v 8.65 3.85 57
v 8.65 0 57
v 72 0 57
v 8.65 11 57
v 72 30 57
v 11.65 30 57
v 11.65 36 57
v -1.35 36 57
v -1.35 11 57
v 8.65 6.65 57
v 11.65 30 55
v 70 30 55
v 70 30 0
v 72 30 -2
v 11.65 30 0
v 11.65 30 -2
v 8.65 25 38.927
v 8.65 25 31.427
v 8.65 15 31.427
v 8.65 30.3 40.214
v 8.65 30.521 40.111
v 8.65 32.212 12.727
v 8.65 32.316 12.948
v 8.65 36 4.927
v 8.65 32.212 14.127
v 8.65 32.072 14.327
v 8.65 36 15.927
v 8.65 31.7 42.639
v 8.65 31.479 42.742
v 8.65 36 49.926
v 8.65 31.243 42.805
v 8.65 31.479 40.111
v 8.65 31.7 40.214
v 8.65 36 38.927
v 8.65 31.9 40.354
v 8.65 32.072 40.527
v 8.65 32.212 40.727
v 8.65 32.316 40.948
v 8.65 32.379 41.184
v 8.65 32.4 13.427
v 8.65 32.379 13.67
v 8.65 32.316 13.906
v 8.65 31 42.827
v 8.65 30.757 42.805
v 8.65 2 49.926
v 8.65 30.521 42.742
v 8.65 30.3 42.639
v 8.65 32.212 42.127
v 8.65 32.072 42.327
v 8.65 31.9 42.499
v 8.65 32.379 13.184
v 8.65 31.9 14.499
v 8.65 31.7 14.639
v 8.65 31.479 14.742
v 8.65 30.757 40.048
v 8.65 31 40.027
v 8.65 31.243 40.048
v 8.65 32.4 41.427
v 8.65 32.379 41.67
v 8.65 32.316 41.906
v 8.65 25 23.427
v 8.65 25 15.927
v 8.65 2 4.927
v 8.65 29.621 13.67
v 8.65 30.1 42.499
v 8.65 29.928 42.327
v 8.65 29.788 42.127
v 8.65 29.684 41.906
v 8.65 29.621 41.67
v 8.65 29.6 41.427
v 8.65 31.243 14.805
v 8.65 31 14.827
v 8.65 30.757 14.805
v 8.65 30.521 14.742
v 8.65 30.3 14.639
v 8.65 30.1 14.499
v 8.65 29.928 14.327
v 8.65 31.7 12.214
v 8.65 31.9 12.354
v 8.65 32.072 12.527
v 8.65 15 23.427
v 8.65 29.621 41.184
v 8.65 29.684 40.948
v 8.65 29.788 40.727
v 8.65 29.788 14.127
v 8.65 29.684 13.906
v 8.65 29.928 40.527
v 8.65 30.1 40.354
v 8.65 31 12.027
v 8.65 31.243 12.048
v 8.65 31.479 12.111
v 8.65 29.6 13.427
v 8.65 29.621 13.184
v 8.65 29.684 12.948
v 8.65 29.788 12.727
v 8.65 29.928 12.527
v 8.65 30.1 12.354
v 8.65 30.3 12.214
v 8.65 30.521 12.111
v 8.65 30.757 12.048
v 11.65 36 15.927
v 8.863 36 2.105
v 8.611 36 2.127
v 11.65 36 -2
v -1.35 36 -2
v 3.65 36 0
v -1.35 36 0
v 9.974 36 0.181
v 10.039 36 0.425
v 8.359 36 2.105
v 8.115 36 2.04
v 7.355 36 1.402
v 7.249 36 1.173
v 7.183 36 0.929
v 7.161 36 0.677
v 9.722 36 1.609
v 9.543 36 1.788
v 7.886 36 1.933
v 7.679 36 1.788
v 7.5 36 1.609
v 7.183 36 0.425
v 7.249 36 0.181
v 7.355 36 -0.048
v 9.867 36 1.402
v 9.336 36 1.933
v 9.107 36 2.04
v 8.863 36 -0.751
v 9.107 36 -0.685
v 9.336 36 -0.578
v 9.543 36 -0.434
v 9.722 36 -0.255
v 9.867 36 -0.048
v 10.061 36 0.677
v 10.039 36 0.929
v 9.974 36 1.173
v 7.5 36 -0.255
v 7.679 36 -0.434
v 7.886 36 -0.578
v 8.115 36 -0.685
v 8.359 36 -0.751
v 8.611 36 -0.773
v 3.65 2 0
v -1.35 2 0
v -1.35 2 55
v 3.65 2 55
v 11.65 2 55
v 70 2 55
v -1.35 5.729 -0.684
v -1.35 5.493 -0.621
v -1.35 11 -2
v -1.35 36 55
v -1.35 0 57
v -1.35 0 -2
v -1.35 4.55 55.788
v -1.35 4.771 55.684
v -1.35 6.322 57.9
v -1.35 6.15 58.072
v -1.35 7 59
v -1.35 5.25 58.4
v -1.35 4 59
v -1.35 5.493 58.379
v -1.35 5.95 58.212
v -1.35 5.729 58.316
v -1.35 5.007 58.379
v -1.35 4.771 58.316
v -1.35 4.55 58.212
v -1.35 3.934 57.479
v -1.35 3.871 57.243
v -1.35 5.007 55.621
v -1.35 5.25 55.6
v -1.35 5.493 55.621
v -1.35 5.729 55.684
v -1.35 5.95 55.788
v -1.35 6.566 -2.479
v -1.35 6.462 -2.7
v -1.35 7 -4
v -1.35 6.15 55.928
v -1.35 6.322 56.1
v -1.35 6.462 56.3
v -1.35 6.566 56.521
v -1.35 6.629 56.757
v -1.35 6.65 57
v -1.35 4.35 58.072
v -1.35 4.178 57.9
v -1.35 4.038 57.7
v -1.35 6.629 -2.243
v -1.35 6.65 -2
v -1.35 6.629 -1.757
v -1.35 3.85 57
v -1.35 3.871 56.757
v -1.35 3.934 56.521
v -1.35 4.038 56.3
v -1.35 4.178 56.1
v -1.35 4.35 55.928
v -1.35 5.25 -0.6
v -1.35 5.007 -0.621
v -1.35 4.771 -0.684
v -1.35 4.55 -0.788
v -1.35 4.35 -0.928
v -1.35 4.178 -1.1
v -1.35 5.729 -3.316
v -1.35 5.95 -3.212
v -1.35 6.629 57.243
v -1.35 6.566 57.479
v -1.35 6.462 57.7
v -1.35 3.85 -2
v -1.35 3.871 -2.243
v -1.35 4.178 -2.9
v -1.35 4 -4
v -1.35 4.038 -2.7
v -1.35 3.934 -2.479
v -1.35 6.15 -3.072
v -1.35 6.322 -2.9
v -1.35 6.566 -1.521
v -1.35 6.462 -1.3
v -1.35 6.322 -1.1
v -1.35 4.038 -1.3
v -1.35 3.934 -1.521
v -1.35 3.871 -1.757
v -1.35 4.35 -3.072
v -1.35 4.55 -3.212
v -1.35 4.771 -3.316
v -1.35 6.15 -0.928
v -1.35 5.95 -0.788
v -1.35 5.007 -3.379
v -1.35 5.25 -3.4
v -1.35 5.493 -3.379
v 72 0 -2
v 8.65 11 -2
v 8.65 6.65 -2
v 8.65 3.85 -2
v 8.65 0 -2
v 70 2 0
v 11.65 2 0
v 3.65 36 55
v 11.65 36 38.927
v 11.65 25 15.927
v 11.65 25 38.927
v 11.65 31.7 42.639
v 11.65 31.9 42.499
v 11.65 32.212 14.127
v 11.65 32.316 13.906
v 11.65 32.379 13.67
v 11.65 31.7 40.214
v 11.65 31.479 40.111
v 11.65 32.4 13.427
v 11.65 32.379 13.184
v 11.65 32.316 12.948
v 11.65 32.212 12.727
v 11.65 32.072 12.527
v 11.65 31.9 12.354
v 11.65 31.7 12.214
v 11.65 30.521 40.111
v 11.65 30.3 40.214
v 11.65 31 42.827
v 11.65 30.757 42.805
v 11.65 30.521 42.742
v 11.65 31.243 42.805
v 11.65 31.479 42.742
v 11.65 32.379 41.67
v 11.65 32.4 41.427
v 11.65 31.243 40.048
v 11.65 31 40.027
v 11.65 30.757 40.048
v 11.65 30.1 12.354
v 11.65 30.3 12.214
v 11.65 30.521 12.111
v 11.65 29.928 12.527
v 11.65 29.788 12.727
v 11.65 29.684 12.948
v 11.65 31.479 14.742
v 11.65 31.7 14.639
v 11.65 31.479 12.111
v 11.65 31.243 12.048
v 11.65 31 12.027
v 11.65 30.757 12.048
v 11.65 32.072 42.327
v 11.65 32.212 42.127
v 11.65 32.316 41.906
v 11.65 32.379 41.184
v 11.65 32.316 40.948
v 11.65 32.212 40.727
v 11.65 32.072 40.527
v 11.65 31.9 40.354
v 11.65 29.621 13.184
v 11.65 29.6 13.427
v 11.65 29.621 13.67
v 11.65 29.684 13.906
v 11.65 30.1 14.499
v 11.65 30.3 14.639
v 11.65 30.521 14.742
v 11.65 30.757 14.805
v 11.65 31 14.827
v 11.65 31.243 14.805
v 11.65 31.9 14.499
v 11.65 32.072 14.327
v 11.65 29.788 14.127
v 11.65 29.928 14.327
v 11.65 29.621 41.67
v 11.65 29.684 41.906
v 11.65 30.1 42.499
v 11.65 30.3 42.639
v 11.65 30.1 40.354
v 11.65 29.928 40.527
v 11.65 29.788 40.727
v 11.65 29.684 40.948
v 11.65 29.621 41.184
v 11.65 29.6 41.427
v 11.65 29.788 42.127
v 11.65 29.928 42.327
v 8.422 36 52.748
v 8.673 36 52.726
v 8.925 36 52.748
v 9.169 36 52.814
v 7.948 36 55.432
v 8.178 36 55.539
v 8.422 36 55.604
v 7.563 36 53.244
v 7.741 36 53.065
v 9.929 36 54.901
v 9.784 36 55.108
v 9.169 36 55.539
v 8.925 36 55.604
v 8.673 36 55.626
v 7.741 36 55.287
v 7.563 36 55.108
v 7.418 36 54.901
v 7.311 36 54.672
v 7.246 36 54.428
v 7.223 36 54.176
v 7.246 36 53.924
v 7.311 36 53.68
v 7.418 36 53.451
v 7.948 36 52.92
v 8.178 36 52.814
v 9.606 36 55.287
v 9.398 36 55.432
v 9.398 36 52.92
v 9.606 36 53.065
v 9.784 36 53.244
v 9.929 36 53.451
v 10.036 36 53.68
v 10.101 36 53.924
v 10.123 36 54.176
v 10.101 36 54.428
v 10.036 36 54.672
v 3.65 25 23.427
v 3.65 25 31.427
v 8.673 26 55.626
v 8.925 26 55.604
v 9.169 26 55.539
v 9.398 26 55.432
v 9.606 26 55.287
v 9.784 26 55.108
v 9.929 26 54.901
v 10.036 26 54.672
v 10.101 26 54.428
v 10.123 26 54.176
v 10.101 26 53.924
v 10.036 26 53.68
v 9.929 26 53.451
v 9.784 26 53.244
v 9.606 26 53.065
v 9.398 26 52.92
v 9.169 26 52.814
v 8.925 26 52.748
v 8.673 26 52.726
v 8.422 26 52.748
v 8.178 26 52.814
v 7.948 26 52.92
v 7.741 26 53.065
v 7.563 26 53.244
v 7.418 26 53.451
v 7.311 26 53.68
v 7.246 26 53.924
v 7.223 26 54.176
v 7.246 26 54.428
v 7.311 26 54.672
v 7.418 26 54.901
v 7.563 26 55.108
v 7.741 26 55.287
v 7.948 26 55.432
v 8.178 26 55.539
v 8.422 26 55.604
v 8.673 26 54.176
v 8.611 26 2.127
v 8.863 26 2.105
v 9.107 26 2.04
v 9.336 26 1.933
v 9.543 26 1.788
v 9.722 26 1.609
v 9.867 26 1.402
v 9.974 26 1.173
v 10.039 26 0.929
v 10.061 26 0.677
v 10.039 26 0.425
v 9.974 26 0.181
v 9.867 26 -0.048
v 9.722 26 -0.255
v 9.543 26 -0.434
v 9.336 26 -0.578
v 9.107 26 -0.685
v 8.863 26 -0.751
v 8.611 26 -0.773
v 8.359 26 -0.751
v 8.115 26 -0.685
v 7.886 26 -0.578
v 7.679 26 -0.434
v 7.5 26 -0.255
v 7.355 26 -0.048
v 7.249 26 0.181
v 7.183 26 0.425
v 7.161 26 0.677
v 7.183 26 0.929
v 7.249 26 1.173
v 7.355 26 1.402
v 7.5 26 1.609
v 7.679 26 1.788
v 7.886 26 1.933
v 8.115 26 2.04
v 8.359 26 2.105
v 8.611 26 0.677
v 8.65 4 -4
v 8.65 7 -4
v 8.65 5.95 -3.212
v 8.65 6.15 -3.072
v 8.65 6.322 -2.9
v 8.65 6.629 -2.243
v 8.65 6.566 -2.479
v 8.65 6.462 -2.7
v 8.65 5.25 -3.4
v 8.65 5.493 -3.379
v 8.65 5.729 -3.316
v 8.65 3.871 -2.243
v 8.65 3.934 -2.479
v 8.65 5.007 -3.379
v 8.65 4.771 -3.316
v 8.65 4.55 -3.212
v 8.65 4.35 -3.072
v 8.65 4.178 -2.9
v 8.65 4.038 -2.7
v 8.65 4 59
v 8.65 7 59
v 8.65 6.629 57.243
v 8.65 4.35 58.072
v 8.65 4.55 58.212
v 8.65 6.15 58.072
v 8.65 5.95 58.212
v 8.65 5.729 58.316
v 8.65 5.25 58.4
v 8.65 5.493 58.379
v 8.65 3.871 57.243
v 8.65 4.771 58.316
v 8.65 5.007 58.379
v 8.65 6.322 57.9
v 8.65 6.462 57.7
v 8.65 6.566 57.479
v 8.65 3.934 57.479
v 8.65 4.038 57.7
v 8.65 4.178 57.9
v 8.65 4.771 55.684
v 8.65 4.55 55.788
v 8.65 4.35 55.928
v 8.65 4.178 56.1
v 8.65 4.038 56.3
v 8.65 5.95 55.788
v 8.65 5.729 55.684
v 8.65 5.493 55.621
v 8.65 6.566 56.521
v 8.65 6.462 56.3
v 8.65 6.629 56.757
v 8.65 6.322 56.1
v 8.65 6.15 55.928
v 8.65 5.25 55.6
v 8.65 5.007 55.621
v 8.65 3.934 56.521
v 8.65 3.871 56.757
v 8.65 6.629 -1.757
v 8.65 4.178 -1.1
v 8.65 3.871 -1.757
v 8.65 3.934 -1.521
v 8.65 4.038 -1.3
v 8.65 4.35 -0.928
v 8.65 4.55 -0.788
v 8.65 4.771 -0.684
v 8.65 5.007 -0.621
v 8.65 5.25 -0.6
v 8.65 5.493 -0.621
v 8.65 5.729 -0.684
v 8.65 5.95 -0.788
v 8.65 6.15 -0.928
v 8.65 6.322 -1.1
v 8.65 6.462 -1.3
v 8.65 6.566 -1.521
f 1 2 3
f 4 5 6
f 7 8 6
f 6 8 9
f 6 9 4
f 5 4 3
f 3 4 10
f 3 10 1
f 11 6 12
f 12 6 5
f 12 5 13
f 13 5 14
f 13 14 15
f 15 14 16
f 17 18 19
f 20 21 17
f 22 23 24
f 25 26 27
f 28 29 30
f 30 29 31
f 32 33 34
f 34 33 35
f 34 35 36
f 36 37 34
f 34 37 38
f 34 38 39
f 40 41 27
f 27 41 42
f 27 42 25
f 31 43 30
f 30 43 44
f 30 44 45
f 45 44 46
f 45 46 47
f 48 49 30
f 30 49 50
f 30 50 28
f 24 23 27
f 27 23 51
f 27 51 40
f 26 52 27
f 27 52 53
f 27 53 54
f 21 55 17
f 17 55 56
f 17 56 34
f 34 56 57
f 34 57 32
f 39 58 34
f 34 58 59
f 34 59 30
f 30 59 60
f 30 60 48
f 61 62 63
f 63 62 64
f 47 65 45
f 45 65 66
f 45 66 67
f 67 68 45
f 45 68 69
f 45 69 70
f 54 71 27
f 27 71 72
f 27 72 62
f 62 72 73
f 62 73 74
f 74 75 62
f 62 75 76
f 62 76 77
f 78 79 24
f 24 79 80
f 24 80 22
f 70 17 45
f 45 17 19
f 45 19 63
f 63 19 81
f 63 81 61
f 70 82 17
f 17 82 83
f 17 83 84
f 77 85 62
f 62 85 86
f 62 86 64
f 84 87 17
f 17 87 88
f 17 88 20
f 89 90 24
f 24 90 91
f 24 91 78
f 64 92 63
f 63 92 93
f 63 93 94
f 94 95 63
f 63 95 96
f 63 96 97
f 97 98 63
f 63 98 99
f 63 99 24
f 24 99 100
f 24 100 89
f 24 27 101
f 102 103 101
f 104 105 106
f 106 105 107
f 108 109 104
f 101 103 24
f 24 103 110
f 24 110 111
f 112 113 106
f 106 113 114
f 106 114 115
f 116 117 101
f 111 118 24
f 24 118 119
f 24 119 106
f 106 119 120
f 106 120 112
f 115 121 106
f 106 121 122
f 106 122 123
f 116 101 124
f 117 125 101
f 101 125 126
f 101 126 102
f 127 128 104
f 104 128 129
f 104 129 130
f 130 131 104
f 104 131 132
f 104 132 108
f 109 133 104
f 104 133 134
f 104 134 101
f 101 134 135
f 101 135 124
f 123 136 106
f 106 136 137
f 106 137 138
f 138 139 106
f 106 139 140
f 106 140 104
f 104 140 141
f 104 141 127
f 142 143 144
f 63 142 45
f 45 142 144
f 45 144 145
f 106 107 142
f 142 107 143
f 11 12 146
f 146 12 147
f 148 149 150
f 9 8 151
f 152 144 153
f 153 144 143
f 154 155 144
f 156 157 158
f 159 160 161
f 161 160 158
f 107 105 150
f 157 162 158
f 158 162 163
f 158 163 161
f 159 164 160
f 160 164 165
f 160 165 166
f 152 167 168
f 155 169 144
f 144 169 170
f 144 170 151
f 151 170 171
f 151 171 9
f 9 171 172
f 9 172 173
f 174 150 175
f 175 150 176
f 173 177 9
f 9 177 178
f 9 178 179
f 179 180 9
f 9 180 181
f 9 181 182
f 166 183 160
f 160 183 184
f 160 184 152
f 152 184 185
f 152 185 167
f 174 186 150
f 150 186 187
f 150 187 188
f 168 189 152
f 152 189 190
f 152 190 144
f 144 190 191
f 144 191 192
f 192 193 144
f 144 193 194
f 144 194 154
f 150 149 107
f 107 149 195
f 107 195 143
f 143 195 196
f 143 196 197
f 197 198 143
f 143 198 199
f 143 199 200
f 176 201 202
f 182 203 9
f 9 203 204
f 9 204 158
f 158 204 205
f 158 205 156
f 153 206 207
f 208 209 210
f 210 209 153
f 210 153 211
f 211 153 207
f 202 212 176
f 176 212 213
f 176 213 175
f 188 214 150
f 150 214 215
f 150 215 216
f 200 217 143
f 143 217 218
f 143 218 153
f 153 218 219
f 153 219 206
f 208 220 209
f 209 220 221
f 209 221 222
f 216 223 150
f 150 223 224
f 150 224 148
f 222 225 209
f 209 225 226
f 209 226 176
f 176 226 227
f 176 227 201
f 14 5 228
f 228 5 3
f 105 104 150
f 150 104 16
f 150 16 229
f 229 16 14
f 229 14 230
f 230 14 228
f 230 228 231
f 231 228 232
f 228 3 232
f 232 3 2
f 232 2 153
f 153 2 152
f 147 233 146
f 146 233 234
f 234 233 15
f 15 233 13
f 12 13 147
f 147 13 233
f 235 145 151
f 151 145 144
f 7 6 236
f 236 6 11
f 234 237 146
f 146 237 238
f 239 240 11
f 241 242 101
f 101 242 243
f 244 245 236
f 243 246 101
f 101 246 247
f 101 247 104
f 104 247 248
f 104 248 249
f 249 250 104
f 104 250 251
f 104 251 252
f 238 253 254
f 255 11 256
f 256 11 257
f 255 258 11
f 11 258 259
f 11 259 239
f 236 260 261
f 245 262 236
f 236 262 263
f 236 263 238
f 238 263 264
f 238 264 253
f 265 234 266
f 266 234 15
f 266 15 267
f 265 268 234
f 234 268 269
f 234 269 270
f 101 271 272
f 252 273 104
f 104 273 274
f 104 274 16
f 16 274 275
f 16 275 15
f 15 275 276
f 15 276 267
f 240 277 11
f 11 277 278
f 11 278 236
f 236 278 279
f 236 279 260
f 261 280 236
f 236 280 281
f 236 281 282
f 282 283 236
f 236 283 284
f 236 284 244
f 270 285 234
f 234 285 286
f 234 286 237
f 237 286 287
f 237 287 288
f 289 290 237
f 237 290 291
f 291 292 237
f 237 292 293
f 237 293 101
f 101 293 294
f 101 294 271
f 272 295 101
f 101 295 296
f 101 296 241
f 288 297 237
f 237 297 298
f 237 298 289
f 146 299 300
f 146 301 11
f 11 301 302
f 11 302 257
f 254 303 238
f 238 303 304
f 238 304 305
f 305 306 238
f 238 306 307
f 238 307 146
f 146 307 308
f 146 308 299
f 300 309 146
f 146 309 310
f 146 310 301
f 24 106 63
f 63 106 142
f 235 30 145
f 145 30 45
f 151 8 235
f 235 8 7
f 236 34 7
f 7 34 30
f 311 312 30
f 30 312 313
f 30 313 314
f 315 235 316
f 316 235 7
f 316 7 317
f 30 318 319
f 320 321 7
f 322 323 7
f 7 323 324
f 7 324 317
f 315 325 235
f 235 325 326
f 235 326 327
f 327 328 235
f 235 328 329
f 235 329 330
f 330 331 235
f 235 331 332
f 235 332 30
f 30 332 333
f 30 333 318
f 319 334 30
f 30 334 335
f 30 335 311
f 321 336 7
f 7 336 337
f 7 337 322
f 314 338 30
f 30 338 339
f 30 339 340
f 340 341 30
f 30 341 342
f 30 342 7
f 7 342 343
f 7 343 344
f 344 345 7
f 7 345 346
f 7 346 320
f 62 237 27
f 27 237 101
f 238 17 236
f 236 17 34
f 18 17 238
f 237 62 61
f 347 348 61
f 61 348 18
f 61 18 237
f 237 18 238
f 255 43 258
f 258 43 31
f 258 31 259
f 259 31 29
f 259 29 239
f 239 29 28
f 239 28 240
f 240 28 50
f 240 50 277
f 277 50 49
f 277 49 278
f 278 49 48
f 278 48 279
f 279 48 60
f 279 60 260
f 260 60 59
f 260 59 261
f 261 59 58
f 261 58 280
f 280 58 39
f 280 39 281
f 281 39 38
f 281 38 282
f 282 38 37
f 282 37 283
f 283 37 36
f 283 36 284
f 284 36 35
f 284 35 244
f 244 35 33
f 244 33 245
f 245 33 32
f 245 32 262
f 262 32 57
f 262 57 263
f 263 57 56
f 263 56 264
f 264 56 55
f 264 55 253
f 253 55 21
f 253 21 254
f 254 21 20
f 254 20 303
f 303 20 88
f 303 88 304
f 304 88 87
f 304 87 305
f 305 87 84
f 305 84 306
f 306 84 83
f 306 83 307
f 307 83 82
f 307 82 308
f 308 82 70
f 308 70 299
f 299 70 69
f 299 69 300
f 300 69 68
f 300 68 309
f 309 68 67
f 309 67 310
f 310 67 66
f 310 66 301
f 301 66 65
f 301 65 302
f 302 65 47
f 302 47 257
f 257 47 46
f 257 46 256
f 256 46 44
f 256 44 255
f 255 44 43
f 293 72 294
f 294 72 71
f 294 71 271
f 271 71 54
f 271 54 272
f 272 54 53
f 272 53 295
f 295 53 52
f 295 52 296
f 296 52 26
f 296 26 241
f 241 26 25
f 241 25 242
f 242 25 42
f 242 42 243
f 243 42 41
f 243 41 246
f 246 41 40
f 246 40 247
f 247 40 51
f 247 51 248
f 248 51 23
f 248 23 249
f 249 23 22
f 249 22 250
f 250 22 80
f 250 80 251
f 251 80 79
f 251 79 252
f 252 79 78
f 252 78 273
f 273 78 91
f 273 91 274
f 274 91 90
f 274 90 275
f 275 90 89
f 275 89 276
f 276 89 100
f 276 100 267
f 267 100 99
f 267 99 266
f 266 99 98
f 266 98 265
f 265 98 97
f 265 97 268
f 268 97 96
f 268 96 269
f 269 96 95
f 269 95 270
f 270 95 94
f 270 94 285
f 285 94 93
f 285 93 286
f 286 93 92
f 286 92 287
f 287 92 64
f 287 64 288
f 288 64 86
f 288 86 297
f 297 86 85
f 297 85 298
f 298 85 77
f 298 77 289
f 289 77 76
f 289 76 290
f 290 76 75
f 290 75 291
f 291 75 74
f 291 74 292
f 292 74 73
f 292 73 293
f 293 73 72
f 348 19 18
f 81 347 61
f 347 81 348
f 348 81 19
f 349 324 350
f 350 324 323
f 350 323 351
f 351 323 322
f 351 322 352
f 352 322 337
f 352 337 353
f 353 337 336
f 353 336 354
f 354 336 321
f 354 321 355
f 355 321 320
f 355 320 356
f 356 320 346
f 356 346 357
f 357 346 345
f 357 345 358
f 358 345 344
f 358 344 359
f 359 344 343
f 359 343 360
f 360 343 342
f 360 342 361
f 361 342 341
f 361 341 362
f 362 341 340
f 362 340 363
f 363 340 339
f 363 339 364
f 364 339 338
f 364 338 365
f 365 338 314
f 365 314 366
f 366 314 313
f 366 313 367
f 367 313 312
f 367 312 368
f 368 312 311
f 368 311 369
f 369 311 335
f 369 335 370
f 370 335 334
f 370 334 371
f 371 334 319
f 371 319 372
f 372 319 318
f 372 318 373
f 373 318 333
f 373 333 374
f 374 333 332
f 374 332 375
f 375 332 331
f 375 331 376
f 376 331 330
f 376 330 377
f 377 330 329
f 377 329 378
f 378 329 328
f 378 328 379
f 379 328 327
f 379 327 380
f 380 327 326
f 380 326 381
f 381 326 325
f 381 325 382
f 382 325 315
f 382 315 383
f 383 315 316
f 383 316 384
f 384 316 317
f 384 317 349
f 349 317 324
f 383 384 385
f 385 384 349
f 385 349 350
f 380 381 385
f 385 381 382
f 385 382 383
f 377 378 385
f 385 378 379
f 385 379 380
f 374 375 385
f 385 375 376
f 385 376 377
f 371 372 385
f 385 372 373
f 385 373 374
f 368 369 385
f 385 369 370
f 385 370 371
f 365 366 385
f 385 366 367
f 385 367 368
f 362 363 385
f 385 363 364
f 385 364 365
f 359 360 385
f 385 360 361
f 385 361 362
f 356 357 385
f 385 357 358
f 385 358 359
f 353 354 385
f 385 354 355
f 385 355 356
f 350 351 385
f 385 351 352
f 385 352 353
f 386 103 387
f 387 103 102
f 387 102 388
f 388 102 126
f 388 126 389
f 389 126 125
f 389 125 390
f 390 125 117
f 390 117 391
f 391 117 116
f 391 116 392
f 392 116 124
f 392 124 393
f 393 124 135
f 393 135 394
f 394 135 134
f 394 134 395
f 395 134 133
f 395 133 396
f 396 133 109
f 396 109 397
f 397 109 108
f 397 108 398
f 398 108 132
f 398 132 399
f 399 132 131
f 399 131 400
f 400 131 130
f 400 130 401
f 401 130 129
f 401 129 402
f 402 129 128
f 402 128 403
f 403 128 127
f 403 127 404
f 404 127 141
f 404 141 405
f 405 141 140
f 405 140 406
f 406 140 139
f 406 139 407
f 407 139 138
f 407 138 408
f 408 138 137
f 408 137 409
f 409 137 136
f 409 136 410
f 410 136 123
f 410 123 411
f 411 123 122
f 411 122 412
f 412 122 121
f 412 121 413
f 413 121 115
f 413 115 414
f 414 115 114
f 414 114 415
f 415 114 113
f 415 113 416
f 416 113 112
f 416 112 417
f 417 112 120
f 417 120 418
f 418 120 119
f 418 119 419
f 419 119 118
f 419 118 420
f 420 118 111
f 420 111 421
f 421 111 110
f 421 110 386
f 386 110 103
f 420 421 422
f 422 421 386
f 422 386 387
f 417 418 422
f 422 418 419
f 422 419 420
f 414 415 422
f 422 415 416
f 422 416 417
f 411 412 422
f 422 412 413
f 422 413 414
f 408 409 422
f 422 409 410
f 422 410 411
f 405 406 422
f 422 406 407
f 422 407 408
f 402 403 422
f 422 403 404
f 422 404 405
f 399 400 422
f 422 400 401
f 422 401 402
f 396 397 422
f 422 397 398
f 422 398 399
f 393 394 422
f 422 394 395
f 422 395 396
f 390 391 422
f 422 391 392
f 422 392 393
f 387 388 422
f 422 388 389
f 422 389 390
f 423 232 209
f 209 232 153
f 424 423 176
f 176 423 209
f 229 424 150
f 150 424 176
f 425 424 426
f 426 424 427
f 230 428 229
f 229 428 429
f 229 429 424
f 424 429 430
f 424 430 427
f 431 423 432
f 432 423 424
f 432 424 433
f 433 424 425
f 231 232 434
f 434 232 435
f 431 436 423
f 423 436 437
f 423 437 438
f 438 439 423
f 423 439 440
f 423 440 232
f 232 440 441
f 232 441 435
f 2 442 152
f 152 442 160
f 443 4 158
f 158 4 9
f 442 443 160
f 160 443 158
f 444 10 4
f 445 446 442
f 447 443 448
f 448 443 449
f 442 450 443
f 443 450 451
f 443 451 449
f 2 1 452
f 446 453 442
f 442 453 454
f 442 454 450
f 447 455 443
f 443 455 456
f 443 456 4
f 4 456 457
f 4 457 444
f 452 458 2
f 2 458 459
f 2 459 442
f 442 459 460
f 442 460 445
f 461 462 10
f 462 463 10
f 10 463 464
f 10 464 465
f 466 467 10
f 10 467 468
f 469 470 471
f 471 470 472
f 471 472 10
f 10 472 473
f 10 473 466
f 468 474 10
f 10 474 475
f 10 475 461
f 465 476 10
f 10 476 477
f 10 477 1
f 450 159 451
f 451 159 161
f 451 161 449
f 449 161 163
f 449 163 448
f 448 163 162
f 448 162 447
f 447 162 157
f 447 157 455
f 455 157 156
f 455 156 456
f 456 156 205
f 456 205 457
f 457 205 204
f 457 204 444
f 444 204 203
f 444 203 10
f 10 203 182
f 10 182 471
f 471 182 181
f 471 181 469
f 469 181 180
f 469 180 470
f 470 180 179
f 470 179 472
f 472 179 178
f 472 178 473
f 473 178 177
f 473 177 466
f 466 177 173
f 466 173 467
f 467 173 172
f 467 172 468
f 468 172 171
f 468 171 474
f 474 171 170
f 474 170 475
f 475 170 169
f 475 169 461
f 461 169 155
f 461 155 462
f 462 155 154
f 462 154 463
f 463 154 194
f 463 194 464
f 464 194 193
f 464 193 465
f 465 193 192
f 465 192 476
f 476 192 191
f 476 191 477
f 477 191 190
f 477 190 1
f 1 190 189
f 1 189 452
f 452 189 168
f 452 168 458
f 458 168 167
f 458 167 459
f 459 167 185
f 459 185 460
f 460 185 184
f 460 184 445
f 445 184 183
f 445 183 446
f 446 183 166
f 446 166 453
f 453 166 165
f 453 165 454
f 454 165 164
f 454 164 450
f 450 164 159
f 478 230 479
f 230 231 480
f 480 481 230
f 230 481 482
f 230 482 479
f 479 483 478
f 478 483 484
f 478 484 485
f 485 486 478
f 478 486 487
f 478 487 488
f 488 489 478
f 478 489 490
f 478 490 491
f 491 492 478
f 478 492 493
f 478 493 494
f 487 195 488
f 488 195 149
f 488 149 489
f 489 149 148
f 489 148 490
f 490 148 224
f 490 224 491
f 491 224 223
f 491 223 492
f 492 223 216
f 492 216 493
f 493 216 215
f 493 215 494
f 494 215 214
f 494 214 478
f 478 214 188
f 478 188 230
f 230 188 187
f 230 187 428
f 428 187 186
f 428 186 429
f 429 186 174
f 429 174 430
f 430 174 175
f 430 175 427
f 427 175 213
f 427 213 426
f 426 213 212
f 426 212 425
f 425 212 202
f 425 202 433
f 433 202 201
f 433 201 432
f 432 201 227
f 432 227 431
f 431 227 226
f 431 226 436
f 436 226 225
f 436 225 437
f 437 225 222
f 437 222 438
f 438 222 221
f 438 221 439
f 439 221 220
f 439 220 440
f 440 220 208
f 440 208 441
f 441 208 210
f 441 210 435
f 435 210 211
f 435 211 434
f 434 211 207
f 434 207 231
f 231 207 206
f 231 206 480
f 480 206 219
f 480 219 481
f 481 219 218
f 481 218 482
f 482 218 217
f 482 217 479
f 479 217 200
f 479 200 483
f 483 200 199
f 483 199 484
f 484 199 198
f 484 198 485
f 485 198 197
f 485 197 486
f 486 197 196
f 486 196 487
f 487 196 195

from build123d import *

# Parameters (mm, degrees)
SKETCH1_W           = 70
SKETCH1_H           = 55
BOSS_EXTRUDE1_DEPTH = 2
SKETCH2_W           = 73.35025282
SKETCH2_H           = 59
BOSS_EXTRUDE3_DEPTH = 2
BOSS_EXTRUDE4_DEPTH = 28
BOSS_EXTRUDE5_DEPTH = 34
SKETCH7_W           = 3
SKETCH7_H           = 23
CUT_EXTRUDE1_DEPTH  = 11
SKETCH9_R           = 1.4
CUT_EXTRUDE2_DEPTH  = 11
SKETCH10_W          = 8
SKETCH10_H          = 10
BOSS_EXTRUDE6_DEPTH = 5
CUT_EXTRUDE3_REACH  = 35.573
SKETCH12_W          = 13
SKETCH12_H          = 2
BOSS_EXTRUDE7_DEPTH = 6
SKETCH13_R          = 1.45
CUT_EXTRUDE4_DEPTH  = 10
BOSS_EXTRUDE8_DEPTH = 10
SKETCH15_R          = 1.4
CUT_EXTRUDE5_DEPTH  = 10


with BuildPart() as part:
    # Sketch1 → Boss-Extrude1 (new body)
    with BuildSketch(Plane(origin=(0, 0, 0), x_dir=(1, 0, 0), z_dir=(0, 1, 0))):
        with Locations((35, -27.5)):
            Rectangle(SKETCH1_W, SKETCH1_H)
    extrude(amount=BOSS_EXTRUDE1_DEPTH)

    # Sketch2 → Boss-Extrude3 (add)
    with BuildSketch(Plane(origin=(0, 0, 0), x_dir=(1, 0, 0), z_dir=(0, 1, 0))):
        with Locations((35.32487359, -27.5)):
            Rectangle(SKETCH2_W, SKETCH2_H)
    extrude(amount=BOSS_EXTRUDE3_DEPTH)

    # Sketch3 → Boss-Extrude4 (add)
    with BuildSketch(Plane(origin=(0, 2, 0), x_dir=(1, 0, 0), z_dir=(0, 1, 0))):
        Polygon((-1.35025282, 2), (72, 2), (72, -57), (-1.35025282, -57), (-1.35025282, -55), (70, -55), (70, 0), (-1.35025282, 0), align=None)
    extrude(amount=BOSS_EXTRUDE4_DEPTH)

    # Sketch5 → Boss-Extrude5 (add)
    with BuildSketch(Plane(origin=(0, 2, 0), x_dir=(1, 0, 0), z_dir=(0, 1, 0))):
        Polygon((11.64974718, 0), (8.64974718, 0), (8.64974718, -4.927247976), (8.64974718, -49.926173774), (8.64974718, -55), (11.64974718, -55), align=None)
        Polygon((8.64974718, -4.927247976), (8.64974718, 0), (3.64974718, 0), align=None)
        Polygon((8.64974718, -55), (8.64974718, -49.926173774), (3.64974718, -55), align=None)
    extrude(amount=BOSS_EXTRUDE5_DEPTH)

    # Sketch7 → Cut-Extrude1 (cut)
    with BuildSketch(Plane(origin=(0, 36, 0), x_dir=(1, 0, 0), z_dir=(0, 1, 0))):
        with Locations((10.14974718, -27.426710875)):
            Rectangle(SKETCH7_W, SKETCH7_H)
    extrude(amount=-CUT_EXTRUDE1_DEPTH, mode=Mode.SUBTRACT)

    # Sketch9 → Cut-Extrude2 (cut)
    with BuildSketch(Plane.ZY.offset(-8.64974718)):
        with Locations((13.426710875, 31)):
            Circle(SKETCH9_R)
        with Locations((41.426710875, 31)):
            Circle(SKETCH9_R)
    extrude(amount=-CUT_EXTRUDE2_DEPTH, mode=Mode.SUBTRACT)

    # Sketch10 → Boss-Extrude6 (add)
    with BuildSketch(Plane.ZY.offset(-8.64974718)):
        with Locations((27.426710875, 20)):
            Rectangle(SKETCH10_W, SKETCH10_H)
    extrude(amount=BOSS_EXTRUDE6_DEPTH)

    # Sketch11 → Cut-Extrude3 (cut, up to next)
    with BuildSketch(Plane(origin=(0, 0, 23.426710875), x_dir=(-1, 0, 0), z_dir=(0, 0, -1)), mode=Mode.PRIVATE) as cut_extrude3_sk1:
        Polygon((-8.64974718, 15), (-3.64974718, 25), (-3.64974718, 15), align=None)
    cut_extrude3_tool1 = extrude(cut_extrude3_sk1.sketch, amount=-CUT_EXTRUDE3_REACH, mode=Mode.PRIVATE) & part.part
    add(cut_extrude3_tool1.solids().sort_by_distance((5.316414, 18.333333, 23.426711))[0], mode=Mode.SUBTRACT)

    # Sketch12 → Boss-Extrude7 (add)
    with BuildSketch(Plane(origin=(0, 30, 0), x_dir=(1, 0, 0), z_dir=(0, 1, 0))):
        with Locations((5.14974718, 1)):
            Rectangle(SKETCH12_W, SKETCH12_H)
        with Locations((5.14974718, -56)):
            Rectangle(SKETCH12_W, SKETCH12_H)
    extrude(amount=BOSS_EXTRUDE7_DEPTH)

    # Sketch13 → Cut-Extrude4 (cut)
    with BuildSketch(Plane(origin=(0, 36, 0), x_dir=(1, 0, 0), z_dir=(0, 1, 0))):
        with Locations((8.61107216, -0.677247976)):
            Circle(SKETCH13_R)
        with Locations((8.673474118, -54.176173774)):
            Circle(SKETCH13_R)
    extrude(amount=-CUT_EXTRUDE4_DEPTH, mode=Mode.SUBTRACT)

    # Sketch14 → Boss-Extrude8 (add)
    with BuildSketch(Plane.ZY.offset(1.35025282)):
        Polygon((-2, 0), (-4, 4), (-4, 7), (-2, 11), align=None)
        Polygon((57, 0), (57, 11), (59, 7), (59, 4), align=None)
    extrude(amount=-BOSS_EXTRUDE8_DEPTH)

    # Sketch15 → Cut-Extrude5 (cut)
    with BuildSketch(Plane.ZY.offset(1.35025282)):
        with Locations((-2, 5.25)):
            Circle(SKETCH15_R)
        with Locations((57, 5.25)):
            Circle(SKETCH15_R)
    extrude(amount=-CUT_EXTRUDE5_DEPTH, mode=Mode.SUBTRACT)


solid = part.part
